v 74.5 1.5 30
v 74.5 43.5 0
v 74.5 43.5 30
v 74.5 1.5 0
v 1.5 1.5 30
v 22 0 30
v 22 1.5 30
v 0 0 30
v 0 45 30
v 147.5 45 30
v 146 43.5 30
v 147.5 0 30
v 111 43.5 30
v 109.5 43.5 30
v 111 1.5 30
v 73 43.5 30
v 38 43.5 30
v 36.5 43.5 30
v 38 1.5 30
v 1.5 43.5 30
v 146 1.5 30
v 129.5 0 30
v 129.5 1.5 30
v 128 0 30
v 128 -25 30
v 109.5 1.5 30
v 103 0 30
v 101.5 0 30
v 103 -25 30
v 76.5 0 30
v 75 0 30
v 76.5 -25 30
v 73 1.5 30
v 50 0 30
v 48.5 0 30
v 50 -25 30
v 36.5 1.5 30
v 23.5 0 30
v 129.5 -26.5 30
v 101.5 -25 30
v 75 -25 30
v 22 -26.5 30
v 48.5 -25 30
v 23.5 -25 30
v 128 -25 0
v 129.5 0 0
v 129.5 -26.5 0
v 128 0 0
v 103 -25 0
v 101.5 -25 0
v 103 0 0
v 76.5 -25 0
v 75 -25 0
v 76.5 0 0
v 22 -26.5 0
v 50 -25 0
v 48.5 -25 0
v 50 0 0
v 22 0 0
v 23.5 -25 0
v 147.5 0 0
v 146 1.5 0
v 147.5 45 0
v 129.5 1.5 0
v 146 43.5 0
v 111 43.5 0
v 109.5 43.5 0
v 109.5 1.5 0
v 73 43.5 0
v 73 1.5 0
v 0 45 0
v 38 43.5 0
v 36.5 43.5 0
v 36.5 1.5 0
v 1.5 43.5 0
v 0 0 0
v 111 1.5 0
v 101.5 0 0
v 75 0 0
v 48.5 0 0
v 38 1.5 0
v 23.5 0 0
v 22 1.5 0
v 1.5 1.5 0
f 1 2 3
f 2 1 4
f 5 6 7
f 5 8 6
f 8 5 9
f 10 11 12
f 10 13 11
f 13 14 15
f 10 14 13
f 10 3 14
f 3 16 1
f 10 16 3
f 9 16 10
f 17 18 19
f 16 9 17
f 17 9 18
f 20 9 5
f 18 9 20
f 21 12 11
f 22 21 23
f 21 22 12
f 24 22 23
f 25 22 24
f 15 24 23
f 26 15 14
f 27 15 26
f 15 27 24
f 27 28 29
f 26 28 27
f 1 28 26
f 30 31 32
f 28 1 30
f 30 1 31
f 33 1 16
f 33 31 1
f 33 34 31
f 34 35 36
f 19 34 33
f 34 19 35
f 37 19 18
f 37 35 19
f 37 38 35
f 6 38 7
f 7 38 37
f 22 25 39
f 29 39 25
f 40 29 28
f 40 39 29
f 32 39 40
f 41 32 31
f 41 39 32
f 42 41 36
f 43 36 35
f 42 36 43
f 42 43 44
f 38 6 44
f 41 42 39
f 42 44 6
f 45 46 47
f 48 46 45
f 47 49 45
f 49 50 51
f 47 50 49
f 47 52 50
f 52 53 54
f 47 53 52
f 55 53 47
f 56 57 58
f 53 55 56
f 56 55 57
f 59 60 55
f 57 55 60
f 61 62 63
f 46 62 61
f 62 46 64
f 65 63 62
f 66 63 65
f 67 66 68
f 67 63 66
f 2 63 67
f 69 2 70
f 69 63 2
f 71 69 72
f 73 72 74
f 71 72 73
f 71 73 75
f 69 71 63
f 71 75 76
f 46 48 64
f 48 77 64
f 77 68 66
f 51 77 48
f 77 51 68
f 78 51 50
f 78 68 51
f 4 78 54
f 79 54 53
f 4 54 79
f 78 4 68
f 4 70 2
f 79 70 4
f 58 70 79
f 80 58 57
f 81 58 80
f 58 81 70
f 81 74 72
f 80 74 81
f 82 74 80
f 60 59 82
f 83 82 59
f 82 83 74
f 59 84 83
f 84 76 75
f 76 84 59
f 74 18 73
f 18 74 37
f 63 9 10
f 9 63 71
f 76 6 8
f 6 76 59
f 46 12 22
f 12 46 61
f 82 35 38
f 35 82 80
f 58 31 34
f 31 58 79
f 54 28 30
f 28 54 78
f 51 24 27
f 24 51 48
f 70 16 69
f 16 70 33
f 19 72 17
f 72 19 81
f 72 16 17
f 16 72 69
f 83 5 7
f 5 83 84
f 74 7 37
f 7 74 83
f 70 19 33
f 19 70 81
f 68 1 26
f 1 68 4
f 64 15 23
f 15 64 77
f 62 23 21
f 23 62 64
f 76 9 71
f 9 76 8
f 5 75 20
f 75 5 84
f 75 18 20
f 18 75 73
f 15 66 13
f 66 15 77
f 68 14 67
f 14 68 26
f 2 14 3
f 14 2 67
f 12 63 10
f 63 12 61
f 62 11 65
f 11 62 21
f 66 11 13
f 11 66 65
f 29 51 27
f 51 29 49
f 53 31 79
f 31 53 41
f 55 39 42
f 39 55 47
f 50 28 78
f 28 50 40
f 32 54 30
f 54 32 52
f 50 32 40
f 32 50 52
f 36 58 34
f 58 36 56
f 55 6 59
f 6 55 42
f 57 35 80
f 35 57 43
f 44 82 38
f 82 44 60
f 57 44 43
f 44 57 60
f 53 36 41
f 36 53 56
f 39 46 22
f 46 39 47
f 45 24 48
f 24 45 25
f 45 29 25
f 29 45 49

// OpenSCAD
holder_height_toothbrush = 30;
thickness = 1.5;

module hollow_cube(width, depth, height) {
    difference() {
        cube([width+2*thickness, depth+2*thickness, height]);
        
        translate([thickness, thickness, 0])
        cube([width, depth, height]);
    }
}

for( i = [0:3]) {
    translate([i * (35 + thickness), 0, 0])
    hollow_cube(35, 42, holder_height_toothbrush);
}

for( i = [0:3]) {
    translate([i * (25 + thickness) + 22, -25-thickness, 0])
    hollow_cube(25, 25, holder_height_toothbrush);
}
